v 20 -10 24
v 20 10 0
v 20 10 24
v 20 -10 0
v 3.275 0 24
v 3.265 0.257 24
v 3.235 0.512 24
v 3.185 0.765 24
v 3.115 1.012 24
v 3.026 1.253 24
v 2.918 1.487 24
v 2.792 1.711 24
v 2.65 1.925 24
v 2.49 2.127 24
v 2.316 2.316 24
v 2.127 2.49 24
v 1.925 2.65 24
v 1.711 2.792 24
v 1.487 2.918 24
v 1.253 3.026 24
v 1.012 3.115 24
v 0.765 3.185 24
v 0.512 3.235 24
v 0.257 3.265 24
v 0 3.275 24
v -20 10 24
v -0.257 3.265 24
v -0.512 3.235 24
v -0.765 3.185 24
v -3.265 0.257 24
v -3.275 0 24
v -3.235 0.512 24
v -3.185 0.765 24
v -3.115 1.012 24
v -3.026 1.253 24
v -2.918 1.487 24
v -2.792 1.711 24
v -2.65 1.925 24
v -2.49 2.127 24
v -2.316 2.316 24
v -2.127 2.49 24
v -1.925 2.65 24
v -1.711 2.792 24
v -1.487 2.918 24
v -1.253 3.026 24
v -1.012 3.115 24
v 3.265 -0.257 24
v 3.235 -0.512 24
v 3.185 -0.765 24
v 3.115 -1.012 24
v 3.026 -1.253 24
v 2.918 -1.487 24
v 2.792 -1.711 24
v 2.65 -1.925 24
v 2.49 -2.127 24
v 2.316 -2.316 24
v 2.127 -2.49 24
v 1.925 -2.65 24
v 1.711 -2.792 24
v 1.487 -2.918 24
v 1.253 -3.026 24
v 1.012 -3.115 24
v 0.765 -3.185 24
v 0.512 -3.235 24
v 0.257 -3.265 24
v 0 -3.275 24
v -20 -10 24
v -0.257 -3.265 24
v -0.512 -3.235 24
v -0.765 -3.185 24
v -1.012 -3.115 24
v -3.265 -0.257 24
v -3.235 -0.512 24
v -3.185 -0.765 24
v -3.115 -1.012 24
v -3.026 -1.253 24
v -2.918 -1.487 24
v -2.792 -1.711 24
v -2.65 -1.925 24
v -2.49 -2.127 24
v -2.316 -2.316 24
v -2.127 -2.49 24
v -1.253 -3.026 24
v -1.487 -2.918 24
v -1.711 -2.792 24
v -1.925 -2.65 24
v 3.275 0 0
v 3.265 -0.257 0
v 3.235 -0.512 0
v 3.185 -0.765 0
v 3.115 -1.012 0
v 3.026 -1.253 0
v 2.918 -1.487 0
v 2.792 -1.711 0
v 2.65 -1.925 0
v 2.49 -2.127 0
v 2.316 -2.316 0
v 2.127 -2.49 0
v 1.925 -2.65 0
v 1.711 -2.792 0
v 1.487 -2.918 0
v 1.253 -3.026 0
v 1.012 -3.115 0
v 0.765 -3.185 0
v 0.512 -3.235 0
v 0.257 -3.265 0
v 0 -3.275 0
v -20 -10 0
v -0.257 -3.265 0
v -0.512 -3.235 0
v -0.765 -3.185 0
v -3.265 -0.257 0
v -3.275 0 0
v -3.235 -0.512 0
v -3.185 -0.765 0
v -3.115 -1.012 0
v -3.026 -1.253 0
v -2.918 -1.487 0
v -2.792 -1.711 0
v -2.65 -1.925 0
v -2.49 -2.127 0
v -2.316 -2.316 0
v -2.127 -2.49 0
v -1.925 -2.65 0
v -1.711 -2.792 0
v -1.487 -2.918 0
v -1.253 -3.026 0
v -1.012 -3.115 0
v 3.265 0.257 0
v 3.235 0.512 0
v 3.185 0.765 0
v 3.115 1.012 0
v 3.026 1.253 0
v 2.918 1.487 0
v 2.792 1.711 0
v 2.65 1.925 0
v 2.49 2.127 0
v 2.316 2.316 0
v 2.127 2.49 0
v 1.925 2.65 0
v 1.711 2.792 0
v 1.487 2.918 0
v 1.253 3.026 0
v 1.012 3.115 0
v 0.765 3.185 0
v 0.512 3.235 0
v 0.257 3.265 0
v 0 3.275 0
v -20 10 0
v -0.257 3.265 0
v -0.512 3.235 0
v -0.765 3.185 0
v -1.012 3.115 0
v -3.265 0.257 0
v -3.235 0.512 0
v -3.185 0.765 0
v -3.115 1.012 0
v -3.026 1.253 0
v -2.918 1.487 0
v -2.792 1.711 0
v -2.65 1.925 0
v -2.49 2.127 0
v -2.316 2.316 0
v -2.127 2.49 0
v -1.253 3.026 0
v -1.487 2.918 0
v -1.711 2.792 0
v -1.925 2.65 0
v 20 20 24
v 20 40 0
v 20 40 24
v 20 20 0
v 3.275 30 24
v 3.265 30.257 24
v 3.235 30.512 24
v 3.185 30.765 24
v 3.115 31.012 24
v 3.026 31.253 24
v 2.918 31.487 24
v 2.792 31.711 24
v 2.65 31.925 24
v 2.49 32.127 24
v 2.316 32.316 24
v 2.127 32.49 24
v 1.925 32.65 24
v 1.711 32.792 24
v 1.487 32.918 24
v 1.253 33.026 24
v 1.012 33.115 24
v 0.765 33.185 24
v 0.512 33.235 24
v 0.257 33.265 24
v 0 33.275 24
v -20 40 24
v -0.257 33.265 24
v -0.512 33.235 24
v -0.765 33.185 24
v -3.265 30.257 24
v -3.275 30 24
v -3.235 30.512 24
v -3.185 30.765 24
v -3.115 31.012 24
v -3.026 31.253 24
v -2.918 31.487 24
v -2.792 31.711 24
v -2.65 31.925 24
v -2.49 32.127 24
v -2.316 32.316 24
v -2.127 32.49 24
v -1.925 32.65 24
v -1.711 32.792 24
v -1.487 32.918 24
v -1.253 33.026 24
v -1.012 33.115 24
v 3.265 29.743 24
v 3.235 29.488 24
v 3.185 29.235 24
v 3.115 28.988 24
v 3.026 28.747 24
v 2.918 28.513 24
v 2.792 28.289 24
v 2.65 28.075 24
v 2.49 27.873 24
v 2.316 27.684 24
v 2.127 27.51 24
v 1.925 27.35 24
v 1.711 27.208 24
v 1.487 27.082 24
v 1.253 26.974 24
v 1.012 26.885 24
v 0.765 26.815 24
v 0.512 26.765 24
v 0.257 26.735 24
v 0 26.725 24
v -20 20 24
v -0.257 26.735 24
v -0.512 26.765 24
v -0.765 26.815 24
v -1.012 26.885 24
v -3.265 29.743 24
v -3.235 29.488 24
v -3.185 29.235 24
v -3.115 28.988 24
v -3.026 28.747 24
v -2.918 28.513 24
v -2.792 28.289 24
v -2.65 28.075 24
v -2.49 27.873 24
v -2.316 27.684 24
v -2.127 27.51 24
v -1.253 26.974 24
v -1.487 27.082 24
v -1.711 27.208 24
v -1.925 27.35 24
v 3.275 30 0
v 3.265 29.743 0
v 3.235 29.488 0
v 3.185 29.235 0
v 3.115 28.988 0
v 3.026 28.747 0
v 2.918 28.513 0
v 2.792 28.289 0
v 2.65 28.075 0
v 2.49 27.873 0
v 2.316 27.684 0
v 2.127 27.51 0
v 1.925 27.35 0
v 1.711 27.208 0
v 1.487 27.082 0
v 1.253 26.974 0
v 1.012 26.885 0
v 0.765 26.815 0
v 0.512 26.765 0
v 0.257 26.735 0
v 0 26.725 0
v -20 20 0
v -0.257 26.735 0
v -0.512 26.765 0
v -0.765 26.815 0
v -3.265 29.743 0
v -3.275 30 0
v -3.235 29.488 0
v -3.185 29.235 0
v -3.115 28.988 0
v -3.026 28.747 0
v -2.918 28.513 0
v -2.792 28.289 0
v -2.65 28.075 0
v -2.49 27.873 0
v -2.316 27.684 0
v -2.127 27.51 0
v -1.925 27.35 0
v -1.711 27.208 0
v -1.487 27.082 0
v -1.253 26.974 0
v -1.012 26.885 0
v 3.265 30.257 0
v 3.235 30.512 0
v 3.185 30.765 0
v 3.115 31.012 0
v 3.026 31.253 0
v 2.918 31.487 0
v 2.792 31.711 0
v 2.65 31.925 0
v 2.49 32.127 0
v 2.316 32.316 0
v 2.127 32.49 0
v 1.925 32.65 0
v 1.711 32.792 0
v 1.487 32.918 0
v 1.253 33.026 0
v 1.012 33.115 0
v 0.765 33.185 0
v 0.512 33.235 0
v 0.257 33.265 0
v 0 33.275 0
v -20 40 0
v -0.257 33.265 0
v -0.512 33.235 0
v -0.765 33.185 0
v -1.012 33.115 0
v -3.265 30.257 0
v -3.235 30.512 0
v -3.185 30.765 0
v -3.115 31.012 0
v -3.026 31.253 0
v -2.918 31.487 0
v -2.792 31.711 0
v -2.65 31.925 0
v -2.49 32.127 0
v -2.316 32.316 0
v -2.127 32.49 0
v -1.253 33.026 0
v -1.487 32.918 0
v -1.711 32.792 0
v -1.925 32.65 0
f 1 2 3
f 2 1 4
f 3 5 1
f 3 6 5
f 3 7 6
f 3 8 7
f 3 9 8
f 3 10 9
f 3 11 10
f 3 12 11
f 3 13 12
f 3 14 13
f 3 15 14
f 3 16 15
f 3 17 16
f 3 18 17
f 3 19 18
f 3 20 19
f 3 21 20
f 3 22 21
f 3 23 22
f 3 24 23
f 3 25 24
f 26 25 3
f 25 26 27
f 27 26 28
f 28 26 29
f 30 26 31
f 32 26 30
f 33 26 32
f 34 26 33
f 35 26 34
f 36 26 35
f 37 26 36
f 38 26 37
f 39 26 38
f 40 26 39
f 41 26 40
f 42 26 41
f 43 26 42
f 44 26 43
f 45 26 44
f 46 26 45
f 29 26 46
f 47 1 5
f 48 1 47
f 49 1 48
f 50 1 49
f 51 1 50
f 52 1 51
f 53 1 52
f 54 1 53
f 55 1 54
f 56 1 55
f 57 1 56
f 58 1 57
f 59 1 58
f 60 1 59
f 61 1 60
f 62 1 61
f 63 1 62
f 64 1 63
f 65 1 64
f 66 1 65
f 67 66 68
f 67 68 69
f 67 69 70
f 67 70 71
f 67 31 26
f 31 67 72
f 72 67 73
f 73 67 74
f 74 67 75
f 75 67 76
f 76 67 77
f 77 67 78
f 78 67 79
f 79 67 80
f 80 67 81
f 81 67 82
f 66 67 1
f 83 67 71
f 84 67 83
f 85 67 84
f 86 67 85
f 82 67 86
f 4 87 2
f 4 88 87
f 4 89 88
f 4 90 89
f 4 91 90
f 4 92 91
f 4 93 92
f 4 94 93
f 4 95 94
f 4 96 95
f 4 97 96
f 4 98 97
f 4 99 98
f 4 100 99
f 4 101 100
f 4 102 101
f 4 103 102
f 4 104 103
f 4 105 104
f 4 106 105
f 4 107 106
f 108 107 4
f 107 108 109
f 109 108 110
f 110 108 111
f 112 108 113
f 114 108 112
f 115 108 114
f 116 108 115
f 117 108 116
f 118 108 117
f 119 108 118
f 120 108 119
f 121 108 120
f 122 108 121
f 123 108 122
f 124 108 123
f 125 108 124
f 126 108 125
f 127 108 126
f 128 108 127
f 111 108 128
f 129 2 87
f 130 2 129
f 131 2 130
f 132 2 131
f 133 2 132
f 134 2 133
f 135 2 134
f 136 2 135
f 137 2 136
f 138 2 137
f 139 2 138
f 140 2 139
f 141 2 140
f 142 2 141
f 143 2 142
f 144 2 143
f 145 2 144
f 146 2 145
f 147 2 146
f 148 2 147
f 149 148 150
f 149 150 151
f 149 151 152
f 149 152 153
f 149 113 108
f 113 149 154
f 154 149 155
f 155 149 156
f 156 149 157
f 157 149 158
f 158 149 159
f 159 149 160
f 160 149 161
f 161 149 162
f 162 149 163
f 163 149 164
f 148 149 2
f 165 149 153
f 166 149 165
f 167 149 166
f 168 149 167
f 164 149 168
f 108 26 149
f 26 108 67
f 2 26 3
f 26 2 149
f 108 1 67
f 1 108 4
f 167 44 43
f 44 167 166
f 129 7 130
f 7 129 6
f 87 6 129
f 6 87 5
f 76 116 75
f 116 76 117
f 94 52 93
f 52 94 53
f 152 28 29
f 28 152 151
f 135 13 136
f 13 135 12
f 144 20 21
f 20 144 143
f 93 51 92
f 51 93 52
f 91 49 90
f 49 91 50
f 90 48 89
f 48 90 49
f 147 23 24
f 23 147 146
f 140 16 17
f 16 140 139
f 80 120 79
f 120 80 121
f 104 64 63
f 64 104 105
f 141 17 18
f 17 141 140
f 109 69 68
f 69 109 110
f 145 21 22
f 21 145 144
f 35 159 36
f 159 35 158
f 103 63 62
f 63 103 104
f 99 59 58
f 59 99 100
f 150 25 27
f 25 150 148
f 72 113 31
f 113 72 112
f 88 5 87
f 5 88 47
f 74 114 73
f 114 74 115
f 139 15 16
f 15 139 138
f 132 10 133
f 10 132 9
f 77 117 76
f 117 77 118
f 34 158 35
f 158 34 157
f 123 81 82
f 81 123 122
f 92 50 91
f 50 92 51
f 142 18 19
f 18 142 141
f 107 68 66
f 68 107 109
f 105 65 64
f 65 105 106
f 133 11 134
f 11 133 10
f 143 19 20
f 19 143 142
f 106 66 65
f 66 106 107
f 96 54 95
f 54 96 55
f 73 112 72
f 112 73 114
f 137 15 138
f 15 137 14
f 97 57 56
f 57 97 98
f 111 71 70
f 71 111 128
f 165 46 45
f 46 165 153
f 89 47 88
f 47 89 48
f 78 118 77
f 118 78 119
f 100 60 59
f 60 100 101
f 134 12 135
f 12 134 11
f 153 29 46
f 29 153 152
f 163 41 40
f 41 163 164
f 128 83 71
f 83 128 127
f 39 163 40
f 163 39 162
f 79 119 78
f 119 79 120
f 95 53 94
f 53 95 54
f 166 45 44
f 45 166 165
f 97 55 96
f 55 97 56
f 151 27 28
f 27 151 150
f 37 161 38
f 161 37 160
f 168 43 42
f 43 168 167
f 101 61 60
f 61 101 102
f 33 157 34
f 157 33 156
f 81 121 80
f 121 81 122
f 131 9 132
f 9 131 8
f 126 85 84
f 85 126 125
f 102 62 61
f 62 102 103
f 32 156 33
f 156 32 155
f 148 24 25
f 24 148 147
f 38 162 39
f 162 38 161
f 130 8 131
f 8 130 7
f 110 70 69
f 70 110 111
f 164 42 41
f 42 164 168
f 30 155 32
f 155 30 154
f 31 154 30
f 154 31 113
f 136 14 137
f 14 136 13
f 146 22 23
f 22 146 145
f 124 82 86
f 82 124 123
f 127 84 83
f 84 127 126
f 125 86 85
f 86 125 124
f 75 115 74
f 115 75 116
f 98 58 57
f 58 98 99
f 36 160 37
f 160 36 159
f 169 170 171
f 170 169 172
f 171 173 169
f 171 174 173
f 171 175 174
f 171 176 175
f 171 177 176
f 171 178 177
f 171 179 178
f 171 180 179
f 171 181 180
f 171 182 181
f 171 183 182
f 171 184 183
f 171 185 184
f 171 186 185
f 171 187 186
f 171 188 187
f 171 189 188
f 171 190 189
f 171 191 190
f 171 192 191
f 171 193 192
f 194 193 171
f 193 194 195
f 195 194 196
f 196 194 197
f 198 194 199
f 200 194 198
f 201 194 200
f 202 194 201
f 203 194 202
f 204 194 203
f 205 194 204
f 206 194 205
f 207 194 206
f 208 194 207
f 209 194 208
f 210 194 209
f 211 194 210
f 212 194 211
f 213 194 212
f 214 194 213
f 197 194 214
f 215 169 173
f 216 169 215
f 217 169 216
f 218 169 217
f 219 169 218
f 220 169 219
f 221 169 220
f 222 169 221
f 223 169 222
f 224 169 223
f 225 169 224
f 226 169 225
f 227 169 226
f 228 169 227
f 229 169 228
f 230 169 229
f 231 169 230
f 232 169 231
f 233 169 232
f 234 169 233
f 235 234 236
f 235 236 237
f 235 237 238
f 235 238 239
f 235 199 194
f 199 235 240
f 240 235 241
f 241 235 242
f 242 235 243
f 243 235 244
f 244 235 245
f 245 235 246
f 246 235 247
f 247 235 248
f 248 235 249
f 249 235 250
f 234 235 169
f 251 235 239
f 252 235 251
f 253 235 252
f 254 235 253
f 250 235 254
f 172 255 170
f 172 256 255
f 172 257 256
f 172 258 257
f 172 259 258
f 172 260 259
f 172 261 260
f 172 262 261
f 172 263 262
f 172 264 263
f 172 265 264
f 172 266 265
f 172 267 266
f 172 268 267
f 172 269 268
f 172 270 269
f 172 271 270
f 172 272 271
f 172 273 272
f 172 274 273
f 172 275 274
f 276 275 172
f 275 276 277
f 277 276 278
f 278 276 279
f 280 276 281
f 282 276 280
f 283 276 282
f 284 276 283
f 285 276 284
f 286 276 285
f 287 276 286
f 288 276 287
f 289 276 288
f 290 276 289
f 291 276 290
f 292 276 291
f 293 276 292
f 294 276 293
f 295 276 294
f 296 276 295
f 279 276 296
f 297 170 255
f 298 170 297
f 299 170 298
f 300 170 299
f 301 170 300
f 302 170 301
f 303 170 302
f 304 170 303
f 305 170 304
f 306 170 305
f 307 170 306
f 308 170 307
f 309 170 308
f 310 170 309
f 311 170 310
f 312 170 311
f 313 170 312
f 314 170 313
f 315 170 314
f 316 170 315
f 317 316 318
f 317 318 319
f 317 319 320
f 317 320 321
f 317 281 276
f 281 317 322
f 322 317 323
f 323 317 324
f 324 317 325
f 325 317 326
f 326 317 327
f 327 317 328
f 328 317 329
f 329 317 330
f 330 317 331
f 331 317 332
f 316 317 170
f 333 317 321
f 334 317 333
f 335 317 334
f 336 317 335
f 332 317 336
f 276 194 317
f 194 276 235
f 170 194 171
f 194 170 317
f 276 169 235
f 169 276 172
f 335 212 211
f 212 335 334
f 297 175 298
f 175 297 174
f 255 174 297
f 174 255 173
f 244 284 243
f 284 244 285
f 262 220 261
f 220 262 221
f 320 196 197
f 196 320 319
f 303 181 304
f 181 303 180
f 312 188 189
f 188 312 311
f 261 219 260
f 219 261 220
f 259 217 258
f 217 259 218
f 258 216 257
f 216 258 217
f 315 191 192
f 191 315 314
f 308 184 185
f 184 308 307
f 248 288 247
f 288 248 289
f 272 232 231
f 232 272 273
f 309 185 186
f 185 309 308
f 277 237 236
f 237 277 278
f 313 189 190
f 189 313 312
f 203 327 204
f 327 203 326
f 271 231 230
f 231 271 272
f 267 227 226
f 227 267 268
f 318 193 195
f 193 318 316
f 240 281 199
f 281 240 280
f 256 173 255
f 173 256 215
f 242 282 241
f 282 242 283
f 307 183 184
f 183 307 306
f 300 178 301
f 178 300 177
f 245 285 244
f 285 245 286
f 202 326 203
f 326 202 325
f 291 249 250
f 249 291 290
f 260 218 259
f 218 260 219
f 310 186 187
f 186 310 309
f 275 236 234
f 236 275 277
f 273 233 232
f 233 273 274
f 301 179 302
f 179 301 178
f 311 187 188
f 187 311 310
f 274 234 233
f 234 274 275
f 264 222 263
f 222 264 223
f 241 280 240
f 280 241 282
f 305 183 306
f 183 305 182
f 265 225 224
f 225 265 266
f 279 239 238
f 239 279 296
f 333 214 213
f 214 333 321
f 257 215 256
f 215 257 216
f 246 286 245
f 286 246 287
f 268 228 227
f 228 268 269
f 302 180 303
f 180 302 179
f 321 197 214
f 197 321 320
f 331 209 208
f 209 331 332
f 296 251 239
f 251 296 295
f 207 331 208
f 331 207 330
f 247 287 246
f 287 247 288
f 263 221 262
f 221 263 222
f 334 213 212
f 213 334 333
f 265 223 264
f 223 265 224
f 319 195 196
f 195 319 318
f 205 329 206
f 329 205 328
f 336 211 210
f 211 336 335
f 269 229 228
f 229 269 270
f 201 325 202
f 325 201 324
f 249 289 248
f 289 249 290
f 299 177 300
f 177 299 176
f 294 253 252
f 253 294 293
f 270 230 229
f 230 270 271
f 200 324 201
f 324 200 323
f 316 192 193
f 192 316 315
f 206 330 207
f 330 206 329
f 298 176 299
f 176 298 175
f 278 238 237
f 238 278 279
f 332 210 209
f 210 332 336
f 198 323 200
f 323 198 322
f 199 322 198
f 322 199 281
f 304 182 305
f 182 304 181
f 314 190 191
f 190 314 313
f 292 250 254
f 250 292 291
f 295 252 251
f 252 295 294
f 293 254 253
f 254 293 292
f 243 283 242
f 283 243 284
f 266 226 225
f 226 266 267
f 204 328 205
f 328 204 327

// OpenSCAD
endStopDimensions   = [40.0, 20.0, 24.0];
boltHoleDiameter    = 6.55;

manifoldCorrection  = 0.01;
manifoldCorrection2 = manifoldCorrection * 2.0;
$fn                 = 80;



endStop();
translate( [0, endStopDimensions[1] + 10, 0] )
    endStop();



module endStop()
{
    difference()
    {
        translate( [-endStopDimensions[0]/2, -endStopDimensions[1]/2, 0] )
            cube(endStopDimensions);
        
        translate( [0, 0, -manifoldCorrection] )
            cylinder(d = boltHoleDiameter, h = endStopDimensions[2] + manifoldCorrection2);
    }
}
